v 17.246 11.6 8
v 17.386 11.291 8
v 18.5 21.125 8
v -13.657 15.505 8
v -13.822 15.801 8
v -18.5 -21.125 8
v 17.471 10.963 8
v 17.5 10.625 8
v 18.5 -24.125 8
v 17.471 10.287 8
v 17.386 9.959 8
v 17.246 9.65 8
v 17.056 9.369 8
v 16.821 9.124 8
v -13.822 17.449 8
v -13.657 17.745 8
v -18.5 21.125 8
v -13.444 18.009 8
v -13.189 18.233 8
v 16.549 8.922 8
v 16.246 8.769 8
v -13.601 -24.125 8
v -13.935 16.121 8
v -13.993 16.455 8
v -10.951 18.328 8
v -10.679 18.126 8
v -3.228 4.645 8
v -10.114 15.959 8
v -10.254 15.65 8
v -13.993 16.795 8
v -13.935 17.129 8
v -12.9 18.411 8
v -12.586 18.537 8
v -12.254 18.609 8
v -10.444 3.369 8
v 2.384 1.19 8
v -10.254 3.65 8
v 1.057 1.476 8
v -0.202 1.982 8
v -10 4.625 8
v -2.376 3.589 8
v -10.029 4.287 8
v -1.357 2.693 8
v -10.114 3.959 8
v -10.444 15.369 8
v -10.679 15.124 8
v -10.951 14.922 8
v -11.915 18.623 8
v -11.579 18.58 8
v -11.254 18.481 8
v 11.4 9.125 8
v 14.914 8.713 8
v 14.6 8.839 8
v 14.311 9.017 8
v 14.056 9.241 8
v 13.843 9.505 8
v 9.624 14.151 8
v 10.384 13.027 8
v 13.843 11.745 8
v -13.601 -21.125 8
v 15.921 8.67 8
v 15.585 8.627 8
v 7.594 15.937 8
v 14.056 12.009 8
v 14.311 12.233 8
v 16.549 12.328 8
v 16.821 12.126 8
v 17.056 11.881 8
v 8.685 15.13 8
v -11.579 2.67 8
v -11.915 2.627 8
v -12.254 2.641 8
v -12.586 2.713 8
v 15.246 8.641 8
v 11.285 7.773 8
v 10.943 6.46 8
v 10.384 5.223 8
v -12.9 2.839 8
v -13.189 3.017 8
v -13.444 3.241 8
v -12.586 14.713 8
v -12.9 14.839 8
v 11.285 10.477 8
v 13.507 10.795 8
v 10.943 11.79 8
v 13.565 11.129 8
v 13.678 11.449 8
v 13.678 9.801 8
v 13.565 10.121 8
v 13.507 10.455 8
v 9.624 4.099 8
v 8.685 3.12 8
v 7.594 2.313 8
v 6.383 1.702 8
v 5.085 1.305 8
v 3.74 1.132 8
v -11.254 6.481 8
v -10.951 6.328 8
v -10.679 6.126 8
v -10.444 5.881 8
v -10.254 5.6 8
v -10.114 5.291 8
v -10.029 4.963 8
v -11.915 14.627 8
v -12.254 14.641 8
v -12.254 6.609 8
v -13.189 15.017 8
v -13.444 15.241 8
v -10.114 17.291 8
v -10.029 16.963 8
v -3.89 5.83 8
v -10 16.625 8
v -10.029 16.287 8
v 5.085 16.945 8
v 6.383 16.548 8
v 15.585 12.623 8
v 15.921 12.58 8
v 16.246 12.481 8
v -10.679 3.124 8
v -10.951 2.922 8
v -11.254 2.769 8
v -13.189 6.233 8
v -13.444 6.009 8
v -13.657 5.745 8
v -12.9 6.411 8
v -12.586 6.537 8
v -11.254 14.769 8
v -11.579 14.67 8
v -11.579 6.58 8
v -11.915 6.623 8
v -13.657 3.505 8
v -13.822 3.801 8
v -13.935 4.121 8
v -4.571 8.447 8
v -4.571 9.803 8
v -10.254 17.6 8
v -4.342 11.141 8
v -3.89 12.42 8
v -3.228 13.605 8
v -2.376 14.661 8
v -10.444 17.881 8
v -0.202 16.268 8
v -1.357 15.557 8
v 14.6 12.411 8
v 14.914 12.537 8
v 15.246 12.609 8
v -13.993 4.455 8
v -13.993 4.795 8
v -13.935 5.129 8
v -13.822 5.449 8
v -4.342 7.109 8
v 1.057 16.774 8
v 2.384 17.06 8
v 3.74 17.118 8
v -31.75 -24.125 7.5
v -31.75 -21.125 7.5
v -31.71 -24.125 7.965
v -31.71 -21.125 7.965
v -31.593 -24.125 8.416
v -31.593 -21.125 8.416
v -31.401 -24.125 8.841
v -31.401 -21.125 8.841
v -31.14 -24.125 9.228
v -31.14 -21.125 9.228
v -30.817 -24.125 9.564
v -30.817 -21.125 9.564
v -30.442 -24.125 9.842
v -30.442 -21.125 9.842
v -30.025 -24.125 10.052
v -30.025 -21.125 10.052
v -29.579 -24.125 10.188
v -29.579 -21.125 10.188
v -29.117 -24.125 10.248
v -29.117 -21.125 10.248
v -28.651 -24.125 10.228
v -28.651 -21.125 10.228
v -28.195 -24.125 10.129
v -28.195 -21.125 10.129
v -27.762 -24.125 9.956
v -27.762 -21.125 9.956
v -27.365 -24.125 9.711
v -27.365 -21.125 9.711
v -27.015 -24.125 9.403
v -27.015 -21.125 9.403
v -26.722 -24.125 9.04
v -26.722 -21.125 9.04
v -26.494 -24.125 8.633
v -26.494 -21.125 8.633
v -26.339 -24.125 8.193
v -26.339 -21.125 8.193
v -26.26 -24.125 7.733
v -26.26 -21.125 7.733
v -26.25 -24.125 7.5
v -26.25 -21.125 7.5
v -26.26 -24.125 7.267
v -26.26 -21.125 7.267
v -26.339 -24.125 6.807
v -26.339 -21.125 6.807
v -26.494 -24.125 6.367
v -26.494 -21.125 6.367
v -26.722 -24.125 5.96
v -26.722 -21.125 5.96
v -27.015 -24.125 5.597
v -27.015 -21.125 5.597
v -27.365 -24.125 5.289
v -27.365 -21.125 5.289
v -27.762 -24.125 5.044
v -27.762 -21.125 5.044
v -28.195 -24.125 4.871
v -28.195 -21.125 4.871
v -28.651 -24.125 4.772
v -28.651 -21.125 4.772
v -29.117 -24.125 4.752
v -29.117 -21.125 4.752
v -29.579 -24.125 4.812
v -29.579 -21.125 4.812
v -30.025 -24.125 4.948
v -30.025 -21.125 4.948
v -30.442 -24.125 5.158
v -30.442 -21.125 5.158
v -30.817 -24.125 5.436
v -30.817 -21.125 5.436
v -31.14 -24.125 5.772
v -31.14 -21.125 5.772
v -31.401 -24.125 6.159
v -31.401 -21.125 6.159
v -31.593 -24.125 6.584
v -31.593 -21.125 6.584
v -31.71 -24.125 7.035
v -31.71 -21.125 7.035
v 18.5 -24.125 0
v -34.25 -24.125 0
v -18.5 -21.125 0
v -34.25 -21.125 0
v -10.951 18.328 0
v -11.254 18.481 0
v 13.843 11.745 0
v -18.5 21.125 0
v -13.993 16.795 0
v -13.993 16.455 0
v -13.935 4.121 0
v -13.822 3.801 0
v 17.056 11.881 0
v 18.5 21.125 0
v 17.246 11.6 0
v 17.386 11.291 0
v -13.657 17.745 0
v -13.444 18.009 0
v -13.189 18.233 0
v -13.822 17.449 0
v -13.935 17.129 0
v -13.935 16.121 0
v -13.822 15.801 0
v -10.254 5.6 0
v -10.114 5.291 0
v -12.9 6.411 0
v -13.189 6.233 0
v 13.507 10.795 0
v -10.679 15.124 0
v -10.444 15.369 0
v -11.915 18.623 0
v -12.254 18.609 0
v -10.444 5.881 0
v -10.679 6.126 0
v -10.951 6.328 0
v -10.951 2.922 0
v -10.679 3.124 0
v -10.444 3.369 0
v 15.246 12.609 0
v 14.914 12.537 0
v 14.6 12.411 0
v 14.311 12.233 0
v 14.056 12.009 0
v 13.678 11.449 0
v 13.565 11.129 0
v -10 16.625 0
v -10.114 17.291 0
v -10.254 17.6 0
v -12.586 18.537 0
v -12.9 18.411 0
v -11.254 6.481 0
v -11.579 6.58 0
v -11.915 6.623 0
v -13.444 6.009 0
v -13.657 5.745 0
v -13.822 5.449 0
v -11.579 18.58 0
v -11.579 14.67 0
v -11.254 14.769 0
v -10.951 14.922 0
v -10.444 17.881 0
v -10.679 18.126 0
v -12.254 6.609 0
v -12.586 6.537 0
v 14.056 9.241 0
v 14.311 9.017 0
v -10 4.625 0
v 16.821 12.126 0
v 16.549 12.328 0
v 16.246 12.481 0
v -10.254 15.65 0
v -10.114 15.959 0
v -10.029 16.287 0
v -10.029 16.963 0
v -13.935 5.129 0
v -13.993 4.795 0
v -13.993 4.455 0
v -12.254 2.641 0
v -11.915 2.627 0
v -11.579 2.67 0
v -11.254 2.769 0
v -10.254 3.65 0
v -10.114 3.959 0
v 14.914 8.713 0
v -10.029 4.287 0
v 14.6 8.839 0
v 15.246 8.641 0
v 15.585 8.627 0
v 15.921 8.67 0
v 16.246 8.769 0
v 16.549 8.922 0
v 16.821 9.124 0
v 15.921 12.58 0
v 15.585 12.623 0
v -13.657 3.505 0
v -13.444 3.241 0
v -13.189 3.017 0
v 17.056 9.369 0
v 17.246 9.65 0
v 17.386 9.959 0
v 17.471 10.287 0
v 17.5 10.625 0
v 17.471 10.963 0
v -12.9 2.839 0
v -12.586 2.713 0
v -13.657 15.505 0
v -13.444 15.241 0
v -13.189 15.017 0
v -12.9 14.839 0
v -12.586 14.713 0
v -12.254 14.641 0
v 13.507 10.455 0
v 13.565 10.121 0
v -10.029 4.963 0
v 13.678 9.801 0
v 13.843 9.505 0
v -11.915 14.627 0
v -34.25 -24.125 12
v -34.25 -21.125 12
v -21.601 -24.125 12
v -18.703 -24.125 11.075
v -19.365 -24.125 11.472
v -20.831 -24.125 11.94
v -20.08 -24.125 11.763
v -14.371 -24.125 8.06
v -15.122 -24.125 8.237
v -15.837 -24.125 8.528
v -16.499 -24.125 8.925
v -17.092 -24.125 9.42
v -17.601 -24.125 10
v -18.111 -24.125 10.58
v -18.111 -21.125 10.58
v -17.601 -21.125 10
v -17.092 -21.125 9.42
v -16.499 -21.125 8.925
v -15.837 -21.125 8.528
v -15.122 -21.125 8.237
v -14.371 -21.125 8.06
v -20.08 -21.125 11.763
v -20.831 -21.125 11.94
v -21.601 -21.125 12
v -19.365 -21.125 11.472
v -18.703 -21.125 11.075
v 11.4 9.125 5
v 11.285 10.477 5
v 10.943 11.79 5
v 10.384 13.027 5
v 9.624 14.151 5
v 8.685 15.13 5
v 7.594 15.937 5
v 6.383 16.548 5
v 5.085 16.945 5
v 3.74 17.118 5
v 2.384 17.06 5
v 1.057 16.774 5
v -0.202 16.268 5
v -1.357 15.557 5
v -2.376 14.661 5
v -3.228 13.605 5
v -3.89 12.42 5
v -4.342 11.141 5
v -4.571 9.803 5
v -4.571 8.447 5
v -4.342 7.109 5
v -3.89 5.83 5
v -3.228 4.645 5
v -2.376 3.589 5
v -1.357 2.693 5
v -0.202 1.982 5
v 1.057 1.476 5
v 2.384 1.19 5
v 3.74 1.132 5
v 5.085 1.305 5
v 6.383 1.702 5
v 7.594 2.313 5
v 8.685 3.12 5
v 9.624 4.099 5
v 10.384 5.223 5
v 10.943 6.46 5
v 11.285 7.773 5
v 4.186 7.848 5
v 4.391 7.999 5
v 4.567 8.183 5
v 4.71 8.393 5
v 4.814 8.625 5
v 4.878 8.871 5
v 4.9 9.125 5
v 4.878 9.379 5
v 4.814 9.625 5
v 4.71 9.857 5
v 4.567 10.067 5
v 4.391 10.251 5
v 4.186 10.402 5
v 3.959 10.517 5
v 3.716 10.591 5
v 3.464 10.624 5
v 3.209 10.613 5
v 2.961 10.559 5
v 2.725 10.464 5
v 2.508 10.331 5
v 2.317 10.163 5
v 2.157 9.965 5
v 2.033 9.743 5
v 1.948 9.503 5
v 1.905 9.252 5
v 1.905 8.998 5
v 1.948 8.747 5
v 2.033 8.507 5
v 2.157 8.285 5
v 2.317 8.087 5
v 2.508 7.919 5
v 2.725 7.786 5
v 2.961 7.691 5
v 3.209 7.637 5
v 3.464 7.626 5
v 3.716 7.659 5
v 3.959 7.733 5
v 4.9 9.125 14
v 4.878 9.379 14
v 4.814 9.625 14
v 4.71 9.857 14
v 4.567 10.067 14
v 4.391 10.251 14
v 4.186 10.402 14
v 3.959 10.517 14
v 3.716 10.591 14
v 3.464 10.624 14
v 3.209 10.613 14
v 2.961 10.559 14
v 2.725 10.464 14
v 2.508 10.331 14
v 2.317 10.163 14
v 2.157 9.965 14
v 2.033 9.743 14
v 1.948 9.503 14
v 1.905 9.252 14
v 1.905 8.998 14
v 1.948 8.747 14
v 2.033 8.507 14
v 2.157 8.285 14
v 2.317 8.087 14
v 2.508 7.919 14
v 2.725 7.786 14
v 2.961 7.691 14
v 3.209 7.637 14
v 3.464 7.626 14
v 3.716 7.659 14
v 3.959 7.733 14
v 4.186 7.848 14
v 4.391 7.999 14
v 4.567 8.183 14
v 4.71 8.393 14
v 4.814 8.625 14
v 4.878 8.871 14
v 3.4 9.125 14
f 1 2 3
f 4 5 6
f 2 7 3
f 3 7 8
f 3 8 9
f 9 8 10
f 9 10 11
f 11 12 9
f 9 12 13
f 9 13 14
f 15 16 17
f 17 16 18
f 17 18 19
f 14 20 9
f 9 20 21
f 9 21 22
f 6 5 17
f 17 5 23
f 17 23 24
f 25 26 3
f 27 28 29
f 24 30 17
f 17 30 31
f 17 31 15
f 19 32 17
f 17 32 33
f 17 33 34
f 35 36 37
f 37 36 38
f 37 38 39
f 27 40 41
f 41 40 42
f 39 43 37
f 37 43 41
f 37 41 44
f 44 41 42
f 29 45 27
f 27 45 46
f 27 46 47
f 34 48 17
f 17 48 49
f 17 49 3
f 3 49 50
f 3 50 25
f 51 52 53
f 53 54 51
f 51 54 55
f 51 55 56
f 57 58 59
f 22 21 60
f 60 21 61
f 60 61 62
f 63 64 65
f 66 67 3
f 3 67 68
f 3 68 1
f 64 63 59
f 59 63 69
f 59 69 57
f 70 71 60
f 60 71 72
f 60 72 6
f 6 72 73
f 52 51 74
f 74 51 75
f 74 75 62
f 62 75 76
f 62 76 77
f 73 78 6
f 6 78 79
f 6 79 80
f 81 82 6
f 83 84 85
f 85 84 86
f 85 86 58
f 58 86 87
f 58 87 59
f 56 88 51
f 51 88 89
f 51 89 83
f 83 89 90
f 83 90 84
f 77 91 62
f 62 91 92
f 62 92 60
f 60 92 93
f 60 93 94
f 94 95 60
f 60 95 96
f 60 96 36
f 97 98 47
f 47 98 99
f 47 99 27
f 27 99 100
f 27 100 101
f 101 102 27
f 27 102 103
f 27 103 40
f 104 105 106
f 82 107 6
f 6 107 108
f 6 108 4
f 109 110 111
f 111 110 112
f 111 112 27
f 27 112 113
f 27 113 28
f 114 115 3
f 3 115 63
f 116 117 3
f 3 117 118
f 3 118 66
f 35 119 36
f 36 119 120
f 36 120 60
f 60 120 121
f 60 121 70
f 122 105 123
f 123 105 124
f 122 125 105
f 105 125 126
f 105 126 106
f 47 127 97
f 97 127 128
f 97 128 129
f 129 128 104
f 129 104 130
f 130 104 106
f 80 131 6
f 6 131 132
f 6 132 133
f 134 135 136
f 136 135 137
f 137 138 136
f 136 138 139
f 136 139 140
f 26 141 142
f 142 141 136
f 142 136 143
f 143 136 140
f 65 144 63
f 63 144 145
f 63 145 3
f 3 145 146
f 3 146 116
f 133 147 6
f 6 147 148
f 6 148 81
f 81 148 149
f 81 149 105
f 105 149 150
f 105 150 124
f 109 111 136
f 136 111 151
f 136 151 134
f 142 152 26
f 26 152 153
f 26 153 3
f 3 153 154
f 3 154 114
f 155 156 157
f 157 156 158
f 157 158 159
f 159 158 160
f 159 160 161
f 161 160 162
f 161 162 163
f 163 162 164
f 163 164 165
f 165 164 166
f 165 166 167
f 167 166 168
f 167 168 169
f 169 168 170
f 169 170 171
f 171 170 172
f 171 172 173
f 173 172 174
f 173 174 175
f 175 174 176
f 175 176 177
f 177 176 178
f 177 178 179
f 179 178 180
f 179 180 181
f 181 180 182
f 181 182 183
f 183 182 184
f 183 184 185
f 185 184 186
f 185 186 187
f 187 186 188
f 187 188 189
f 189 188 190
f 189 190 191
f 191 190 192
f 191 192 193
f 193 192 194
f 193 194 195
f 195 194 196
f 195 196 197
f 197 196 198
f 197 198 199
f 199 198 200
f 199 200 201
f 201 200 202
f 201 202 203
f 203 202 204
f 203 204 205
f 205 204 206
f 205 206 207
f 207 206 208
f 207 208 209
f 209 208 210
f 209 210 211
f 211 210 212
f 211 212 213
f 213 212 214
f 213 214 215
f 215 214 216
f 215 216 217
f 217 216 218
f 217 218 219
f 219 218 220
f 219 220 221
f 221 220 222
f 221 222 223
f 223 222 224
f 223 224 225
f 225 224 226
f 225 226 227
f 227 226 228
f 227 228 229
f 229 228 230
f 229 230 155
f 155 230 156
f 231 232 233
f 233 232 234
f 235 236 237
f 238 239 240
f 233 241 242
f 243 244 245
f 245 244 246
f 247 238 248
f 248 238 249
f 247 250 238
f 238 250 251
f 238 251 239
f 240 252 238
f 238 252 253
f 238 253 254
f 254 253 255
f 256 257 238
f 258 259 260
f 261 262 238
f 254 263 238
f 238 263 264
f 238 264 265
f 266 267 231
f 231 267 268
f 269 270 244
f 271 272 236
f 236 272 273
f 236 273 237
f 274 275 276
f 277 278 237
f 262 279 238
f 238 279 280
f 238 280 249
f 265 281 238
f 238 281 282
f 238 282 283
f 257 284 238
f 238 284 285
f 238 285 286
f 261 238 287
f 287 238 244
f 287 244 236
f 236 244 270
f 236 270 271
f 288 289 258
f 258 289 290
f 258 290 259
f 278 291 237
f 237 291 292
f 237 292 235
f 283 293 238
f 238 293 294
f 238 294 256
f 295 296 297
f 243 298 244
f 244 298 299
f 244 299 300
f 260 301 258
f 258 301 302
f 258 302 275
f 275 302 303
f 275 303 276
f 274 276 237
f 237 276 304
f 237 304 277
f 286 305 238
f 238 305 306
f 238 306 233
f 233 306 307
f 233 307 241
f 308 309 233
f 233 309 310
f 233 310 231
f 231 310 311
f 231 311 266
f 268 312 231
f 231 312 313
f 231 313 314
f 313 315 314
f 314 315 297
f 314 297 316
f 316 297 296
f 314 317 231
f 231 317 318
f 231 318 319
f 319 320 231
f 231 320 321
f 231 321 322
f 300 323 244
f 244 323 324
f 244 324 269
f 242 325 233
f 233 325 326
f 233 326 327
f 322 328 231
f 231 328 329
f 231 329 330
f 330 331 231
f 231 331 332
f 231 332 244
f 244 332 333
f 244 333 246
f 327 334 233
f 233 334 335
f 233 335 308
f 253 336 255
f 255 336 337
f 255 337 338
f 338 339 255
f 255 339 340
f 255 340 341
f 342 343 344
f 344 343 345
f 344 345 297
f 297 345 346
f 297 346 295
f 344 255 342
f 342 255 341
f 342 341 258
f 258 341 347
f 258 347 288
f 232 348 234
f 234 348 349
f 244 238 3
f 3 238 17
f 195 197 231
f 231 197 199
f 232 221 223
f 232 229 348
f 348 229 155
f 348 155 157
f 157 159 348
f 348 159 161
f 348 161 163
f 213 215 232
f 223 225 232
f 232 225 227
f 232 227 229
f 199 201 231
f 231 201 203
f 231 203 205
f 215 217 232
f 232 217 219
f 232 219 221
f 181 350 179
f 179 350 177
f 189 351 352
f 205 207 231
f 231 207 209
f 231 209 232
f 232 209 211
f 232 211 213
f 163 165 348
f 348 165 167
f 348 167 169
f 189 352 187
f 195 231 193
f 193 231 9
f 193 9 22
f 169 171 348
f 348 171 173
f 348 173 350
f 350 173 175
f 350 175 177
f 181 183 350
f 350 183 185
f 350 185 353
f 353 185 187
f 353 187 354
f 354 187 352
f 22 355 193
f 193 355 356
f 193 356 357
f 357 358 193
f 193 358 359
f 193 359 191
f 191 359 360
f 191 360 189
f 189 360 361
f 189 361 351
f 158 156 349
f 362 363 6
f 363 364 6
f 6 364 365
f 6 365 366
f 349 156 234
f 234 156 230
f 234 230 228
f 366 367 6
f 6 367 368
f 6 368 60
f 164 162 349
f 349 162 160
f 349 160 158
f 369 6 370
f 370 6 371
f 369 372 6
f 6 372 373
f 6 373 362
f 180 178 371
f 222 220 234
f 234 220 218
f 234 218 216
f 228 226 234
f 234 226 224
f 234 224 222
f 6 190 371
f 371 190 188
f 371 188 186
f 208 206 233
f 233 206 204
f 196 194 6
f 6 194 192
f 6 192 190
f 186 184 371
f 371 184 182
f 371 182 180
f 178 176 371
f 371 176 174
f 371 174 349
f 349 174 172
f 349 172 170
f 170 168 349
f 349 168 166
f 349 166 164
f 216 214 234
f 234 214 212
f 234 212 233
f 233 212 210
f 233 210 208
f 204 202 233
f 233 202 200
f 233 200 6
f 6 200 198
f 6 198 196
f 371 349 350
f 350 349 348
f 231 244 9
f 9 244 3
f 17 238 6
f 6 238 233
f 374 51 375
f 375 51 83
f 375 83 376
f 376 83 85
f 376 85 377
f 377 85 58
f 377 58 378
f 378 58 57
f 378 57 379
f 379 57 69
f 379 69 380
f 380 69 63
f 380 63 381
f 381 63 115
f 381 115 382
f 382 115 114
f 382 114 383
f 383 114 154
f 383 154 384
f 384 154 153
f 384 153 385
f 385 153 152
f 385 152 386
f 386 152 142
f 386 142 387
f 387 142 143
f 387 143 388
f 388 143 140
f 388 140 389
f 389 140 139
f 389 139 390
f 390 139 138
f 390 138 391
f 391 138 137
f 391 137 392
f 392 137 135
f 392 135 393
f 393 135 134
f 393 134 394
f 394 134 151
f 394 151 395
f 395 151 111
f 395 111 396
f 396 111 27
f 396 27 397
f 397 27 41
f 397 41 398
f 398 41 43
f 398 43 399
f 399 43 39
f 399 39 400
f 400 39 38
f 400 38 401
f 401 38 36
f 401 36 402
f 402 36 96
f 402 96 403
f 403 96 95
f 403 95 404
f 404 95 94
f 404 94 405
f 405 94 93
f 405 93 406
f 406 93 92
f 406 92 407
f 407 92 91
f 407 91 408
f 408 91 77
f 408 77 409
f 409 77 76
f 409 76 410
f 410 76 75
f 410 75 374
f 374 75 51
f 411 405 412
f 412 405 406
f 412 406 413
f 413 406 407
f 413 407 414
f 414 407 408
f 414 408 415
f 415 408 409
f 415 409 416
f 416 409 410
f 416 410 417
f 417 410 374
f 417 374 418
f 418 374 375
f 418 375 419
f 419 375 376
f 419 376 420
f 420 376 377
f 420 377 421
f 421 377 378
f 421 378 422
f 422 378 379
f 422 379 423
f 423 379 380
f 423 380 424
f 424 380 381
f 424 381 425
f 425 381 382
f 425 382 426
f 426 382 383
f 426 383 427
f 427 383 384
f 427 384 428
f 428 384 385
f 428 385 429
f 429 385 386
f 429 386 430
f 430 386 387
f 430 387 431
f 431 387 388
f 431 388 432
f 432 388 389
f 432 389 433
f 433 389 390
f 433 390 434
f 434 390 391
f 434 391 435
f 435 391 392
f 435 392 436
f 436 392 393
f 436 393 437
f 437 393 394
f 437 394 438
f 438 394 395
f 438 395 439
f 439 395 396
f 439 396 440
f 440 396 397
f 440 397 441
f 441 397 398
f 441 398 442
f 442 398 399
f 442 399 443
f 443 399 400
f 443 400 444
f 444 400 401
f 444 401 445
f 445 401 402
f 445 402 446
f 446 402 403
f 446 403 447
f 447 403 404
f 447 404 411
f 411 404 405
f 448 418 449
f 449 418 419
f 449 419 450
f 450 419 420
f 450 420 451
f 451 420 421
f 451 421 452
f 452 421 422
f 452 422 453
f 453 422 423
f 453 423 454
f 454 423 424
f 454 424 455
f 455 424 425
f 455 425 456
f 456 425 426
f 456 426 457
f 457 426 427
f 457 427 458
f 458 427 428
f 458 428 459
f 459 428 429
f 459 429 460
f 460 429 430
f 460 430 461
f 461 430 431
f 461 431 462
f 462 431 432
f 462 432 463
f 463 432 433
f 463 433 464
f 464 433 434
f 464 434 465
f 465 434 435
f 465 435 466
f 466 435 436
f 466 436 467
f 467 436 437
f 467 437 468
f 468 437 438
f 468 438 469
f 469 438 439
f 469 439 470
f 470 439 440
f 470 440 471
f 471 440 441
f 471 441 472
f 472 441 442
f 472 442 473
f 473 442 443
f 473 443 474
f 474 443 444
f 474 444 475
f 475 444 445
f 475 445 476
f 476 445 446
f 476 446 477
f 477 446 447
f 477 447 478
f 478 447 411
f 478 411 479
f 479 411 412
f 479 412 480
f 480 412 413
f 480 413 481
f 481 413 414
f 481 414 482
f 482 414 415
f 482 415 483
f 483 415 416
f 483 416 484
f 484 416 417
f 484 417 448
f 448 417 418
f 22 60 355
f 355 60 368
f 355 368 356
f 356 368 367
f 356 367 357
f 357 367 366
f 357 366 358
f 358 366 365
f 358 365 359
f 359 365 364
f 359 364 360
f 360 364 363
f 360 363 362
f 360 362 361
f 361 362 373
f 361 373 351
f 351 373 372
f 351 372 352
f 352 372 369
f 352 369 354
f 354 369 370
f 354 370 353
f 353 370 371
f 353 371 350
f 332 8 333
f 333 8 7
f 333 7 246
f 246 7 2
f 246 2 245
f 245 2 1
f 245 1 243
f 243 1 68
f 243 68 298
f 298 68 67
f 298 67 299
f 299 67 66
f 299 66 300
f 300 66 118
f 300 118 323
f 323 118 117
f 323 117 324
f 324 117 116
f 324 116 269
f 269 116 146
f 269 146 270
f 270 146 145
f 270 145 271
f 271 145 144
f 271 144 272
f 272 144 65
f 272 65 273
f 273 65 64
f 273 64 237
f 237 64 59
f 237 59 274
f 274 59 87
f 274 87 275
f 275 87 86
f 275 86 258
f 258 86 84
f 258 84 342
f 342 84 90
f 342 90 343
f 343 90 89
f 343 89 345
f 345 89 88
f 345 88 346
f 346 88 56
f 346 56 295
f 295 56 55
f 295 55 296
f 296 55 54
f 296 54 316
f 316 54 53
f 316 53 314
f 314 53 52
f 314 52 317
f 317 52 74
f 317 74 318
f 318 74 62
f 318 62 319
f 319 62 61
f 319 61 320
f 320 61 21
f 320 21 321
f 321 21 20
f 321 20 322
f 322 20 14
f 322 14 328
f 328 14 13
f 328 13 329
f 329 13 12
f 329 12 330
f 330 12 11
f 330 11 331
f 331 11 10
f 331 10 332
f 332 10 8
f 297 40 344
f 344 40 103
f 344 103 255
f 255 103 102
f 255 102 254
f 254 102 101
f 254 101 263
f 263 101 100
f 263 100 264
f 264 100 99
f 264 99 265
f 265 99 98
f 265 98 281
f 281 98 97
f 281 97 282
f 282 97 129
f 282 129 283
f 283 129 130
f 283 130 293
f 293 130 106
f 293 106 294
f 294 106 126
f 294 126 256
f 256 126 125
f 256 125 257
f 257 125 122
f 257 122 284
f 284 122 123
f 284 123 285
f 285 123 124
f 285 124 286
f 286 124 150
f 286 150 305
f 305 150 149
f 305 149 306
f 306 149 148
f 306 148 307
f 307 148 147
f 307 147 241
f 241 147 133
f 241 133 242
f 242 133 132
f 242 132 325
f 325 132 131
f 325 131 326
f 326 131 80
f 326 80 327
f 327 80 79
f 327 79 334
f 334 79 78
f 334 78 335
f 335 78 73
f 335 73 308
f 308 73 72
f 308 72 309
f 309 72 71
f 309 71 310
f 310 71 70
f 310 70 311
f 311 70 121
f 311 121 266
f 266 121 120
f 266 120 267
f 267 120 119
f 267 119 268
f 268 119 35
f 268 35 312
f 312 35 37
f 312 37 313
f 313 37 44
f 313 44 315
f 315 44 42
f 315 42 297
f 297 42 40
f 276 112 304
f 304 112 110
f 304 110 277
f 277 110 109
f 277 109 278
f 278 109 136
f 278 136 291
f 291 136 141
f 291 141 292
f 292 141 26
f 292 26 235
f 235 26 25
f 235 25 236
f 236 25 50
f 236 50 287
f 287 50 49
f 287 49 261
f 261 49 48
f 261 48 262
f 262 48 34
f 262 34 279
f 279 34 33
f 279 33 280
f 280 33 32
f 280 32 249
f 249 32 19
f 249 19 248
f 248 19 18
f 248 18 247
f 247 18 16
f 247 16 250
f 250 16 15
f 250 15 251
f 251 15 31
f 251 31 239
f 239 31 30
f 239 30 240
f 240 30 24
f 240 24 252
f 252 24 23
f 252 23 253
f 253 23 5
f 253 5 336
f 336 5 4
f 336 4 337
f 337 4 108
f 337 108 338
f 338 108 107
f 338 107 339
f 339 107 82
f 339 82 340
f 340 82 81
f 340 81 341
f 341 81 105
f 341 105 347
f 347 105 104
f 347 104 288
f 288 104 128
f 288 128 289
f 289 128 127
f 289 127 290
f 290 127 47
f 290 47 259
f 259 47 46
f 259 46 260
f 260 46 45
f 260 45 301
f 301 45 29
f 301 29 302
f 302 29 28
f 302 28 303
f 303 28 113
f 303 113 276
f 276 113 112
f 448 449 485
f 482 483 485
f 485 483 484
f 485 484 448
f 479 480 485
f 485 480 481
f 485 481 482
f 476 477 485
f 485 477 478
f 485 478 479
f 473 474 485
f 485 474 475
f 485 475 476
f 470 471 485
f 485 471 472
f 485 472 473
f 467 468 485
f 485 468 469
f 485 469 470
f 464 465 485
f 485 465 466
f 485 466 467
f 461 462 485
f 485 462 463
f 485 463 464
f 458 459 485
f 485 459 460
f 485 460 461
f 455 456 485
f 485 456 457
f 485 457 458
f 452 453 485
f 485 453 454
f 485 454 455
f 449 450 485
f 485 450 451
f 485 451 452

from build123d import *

# Parameters (mm, degrees)
ESQUISSE1_W             = 37
ESQUISSE1_H             = 42.25
ESQUISSE1_R             = 6
BOSS_EXTRU_1_DEPTH      = 12
ESQUISSE2_R             = 6
ESQUISSE2_R_2           = 1.5
ENL_V_MAT_EXTRU_1_DEPTH = 3
ESQUISSE3_W             = 37
ESQUISSE3_H             = 12
ESQUISSE3_W_2           = 15.75
ESQUISSE3_R             = 2.75
BOSS_EXTRU_2_DEPTH      = 3
ESQUISSE4_W             = 37
ESQUISSE4_H             = 45.25
ESQUISSE4_R             = 8
ENL_V_MAT_EXTRU_2_DEPTH = 4
ESQUISSE4_3_R           = 8
ESQUISSE4_3_R_2         = 6
ESQUISSE4_3_R_3         = 1.5
ENL_V_MAT_EXTRU_4_DEPTH = 7
CONG_2_R                = 5
CONG_3_R                = 5
ESQUISSE5_R             = 2
ENL_V_MAT_EXTRU_5_DEPTH = 43.650652105
BOSS_EXTRU_3_START      = 2
ESQUISSE2_2_R           = 1.5
BOSS_EXTRU_3_DEPTH      = 2


with BuildPart() as part:
    # Esquisse1 → Boss.-Extru.1 (new body)
    # profile 1 of 2: a face of its own
    with BuildSketch(Plane.XY):
        Rectangle(ESQUISSE1_W, ESQUISSE1_H)
        with Locations((3.4, 9.125)):
            Circle(ESQUISSE1_R, mode=Mode.SUBTRACT)
    # profile 2 of 2: a face of its own
    with BuildSketch(Plane.XY):
        with Locations((3.4, 9.125)):
            Circle(ESQUISSE1_R)
    extrude(amount=BOSS_EXTRU_1_DEPTH)

    # Esquisse2 → Enlèv. mat.-Extru.1 (cut)
    with BuildSketch(Plane.XY.offset(12)):
        with Locations((3.4, 9.125)):
            Circle(ESQUISSE2_R)
        with Locations((3.4, 9.125)):
            Circle(ESQUISSE2_R_2, mode=Mode.SUBTRACT)
    extrude(amount=-ENL_V_MAT_EXTRU_1_DEPTH, mode=Mode.SUBTRACT)

    # Esquisse3 → Boss.-Extru.2 (add)
    # profile 1 of 2: a face of its own
    with BuildSketch(Plane.XZ.offset(21.125)):
        with Locations((0, 6)):
            Rectangle(ESQUISSE3_W, ESQUISSE3_H)
    # profile 2 of 2: a face of its own
    with BuildSketch(Plane.XZ.offset(21.125)):
        with Locations((-26.375, 6)):
            Rectangle(ESQUISSE3_W_2, ESQUISSE3_H)
        with Locations((-29, 7.5)):
            Circle(ESQUISSE3_R, mode=Mode.SUBTRACT)
    extrude(amount=BOSS_EXTRU_2_DEPTH)

    # Esquisse4 → Enlèv. mat.-Extru.2 (cut)
    with BuildSketch(Plane.XY.offset(12)):
        with Locations((0, -1.5)):
            Rectangle(ESQUISSE4_W, ESQUISSE4_H)
        with Locations((3.4, 9.125)):
            Circle(ESQUISSE4_R, mode=Mode.SUBTRACT)
    extrude(amount=-ENL_V_MAT_EXTRU_2_DEPTH, mode=Mode.SUBTRACT)

    # Esquisse4<3> → Enlèv. mat.-Extru.4 (cut)
    # profile 1 of 2: a face of its own
    with BuildSketch(Plane.XY.offset(12)):
        with Locations((3.4, 9.125)):
            Circle(ESQUISSE4_3_R)
        with Locations((3.4, 9.125)):
            Circle(ESQUISSE4_3_R_2, mode=Mode.SUBTRACT)
    # profile 2 of 2: a face of its own
    with BuildSketch(Plane.XY.offset(12)):
        with Locations((3.4, 9.125)):
            Circle(ESQUISSE4_3_R_2)
        with Locations((3.4, 9.125)):
            Circle(ESQUISSE4_3_R_3, mode=Mode.SUBTRACT)
    extrude(amount=-ENL_V_MAT_EXTRU_4_DEPTH, mode=Mode.SUBTRACT)

    # Congé2
    # the kernel refuses this fillet: 5 mm, written as the material it adds along each edge
    with BuildSketch(Plane(origin=(-18.5, -24.125, 8), x_dir=(1.5667467323505199e-12, 0, 1.0), z_dir=(0, 1, 0))) as cong_2_piece_1:
        with BuildLine():
            CenterArc((5, 4.898979486), CONG_2_R, 180, 78.463040967)
            Line((0, 4.898979486), (0, 0))
            Line((0, 0), (4, 0))
        make_face()
    extrude(amount=3)

    # Congé3
    cong_3_edges = [part.edges().sort_by_distance(p)[0] for p in [
        (-18.5, -22.625, 12),
    ]]
    fillet(cong_3_edges, radius=CONG_3_R)

    # Esquisse5 → Enlèv. mat.-Extru.5 (cut, through all)
    with BuildSketch(Plane.XY.offset(8)):
        with Locations((-12, 16.625)):
            Circle(ESQUISSE5_R)
        with Locations((-12, 4.625)):
            Circle(ESQUISSE5_R)
        with Locations((15.5, 10.625)):
            Circle(ESQUISSE5_R)
    extrude(amount=-ENL_V_MAT_EXTRU_5_DEPTH, mode=Mode.SUBTRACT)

    # Esquisse2<2> → Boss.-Extru.3 (add)
    with BuildSketch(Plane.XY.offset(12).offset(BOSS_EXTRU_3_START)):
        with Locations((3.4, 9.125)):
            Circle(ESQUISSE2_2_R)
    extrude(amount=-BOSS_EXTRU_3_DEPTH)


solid = part.part
